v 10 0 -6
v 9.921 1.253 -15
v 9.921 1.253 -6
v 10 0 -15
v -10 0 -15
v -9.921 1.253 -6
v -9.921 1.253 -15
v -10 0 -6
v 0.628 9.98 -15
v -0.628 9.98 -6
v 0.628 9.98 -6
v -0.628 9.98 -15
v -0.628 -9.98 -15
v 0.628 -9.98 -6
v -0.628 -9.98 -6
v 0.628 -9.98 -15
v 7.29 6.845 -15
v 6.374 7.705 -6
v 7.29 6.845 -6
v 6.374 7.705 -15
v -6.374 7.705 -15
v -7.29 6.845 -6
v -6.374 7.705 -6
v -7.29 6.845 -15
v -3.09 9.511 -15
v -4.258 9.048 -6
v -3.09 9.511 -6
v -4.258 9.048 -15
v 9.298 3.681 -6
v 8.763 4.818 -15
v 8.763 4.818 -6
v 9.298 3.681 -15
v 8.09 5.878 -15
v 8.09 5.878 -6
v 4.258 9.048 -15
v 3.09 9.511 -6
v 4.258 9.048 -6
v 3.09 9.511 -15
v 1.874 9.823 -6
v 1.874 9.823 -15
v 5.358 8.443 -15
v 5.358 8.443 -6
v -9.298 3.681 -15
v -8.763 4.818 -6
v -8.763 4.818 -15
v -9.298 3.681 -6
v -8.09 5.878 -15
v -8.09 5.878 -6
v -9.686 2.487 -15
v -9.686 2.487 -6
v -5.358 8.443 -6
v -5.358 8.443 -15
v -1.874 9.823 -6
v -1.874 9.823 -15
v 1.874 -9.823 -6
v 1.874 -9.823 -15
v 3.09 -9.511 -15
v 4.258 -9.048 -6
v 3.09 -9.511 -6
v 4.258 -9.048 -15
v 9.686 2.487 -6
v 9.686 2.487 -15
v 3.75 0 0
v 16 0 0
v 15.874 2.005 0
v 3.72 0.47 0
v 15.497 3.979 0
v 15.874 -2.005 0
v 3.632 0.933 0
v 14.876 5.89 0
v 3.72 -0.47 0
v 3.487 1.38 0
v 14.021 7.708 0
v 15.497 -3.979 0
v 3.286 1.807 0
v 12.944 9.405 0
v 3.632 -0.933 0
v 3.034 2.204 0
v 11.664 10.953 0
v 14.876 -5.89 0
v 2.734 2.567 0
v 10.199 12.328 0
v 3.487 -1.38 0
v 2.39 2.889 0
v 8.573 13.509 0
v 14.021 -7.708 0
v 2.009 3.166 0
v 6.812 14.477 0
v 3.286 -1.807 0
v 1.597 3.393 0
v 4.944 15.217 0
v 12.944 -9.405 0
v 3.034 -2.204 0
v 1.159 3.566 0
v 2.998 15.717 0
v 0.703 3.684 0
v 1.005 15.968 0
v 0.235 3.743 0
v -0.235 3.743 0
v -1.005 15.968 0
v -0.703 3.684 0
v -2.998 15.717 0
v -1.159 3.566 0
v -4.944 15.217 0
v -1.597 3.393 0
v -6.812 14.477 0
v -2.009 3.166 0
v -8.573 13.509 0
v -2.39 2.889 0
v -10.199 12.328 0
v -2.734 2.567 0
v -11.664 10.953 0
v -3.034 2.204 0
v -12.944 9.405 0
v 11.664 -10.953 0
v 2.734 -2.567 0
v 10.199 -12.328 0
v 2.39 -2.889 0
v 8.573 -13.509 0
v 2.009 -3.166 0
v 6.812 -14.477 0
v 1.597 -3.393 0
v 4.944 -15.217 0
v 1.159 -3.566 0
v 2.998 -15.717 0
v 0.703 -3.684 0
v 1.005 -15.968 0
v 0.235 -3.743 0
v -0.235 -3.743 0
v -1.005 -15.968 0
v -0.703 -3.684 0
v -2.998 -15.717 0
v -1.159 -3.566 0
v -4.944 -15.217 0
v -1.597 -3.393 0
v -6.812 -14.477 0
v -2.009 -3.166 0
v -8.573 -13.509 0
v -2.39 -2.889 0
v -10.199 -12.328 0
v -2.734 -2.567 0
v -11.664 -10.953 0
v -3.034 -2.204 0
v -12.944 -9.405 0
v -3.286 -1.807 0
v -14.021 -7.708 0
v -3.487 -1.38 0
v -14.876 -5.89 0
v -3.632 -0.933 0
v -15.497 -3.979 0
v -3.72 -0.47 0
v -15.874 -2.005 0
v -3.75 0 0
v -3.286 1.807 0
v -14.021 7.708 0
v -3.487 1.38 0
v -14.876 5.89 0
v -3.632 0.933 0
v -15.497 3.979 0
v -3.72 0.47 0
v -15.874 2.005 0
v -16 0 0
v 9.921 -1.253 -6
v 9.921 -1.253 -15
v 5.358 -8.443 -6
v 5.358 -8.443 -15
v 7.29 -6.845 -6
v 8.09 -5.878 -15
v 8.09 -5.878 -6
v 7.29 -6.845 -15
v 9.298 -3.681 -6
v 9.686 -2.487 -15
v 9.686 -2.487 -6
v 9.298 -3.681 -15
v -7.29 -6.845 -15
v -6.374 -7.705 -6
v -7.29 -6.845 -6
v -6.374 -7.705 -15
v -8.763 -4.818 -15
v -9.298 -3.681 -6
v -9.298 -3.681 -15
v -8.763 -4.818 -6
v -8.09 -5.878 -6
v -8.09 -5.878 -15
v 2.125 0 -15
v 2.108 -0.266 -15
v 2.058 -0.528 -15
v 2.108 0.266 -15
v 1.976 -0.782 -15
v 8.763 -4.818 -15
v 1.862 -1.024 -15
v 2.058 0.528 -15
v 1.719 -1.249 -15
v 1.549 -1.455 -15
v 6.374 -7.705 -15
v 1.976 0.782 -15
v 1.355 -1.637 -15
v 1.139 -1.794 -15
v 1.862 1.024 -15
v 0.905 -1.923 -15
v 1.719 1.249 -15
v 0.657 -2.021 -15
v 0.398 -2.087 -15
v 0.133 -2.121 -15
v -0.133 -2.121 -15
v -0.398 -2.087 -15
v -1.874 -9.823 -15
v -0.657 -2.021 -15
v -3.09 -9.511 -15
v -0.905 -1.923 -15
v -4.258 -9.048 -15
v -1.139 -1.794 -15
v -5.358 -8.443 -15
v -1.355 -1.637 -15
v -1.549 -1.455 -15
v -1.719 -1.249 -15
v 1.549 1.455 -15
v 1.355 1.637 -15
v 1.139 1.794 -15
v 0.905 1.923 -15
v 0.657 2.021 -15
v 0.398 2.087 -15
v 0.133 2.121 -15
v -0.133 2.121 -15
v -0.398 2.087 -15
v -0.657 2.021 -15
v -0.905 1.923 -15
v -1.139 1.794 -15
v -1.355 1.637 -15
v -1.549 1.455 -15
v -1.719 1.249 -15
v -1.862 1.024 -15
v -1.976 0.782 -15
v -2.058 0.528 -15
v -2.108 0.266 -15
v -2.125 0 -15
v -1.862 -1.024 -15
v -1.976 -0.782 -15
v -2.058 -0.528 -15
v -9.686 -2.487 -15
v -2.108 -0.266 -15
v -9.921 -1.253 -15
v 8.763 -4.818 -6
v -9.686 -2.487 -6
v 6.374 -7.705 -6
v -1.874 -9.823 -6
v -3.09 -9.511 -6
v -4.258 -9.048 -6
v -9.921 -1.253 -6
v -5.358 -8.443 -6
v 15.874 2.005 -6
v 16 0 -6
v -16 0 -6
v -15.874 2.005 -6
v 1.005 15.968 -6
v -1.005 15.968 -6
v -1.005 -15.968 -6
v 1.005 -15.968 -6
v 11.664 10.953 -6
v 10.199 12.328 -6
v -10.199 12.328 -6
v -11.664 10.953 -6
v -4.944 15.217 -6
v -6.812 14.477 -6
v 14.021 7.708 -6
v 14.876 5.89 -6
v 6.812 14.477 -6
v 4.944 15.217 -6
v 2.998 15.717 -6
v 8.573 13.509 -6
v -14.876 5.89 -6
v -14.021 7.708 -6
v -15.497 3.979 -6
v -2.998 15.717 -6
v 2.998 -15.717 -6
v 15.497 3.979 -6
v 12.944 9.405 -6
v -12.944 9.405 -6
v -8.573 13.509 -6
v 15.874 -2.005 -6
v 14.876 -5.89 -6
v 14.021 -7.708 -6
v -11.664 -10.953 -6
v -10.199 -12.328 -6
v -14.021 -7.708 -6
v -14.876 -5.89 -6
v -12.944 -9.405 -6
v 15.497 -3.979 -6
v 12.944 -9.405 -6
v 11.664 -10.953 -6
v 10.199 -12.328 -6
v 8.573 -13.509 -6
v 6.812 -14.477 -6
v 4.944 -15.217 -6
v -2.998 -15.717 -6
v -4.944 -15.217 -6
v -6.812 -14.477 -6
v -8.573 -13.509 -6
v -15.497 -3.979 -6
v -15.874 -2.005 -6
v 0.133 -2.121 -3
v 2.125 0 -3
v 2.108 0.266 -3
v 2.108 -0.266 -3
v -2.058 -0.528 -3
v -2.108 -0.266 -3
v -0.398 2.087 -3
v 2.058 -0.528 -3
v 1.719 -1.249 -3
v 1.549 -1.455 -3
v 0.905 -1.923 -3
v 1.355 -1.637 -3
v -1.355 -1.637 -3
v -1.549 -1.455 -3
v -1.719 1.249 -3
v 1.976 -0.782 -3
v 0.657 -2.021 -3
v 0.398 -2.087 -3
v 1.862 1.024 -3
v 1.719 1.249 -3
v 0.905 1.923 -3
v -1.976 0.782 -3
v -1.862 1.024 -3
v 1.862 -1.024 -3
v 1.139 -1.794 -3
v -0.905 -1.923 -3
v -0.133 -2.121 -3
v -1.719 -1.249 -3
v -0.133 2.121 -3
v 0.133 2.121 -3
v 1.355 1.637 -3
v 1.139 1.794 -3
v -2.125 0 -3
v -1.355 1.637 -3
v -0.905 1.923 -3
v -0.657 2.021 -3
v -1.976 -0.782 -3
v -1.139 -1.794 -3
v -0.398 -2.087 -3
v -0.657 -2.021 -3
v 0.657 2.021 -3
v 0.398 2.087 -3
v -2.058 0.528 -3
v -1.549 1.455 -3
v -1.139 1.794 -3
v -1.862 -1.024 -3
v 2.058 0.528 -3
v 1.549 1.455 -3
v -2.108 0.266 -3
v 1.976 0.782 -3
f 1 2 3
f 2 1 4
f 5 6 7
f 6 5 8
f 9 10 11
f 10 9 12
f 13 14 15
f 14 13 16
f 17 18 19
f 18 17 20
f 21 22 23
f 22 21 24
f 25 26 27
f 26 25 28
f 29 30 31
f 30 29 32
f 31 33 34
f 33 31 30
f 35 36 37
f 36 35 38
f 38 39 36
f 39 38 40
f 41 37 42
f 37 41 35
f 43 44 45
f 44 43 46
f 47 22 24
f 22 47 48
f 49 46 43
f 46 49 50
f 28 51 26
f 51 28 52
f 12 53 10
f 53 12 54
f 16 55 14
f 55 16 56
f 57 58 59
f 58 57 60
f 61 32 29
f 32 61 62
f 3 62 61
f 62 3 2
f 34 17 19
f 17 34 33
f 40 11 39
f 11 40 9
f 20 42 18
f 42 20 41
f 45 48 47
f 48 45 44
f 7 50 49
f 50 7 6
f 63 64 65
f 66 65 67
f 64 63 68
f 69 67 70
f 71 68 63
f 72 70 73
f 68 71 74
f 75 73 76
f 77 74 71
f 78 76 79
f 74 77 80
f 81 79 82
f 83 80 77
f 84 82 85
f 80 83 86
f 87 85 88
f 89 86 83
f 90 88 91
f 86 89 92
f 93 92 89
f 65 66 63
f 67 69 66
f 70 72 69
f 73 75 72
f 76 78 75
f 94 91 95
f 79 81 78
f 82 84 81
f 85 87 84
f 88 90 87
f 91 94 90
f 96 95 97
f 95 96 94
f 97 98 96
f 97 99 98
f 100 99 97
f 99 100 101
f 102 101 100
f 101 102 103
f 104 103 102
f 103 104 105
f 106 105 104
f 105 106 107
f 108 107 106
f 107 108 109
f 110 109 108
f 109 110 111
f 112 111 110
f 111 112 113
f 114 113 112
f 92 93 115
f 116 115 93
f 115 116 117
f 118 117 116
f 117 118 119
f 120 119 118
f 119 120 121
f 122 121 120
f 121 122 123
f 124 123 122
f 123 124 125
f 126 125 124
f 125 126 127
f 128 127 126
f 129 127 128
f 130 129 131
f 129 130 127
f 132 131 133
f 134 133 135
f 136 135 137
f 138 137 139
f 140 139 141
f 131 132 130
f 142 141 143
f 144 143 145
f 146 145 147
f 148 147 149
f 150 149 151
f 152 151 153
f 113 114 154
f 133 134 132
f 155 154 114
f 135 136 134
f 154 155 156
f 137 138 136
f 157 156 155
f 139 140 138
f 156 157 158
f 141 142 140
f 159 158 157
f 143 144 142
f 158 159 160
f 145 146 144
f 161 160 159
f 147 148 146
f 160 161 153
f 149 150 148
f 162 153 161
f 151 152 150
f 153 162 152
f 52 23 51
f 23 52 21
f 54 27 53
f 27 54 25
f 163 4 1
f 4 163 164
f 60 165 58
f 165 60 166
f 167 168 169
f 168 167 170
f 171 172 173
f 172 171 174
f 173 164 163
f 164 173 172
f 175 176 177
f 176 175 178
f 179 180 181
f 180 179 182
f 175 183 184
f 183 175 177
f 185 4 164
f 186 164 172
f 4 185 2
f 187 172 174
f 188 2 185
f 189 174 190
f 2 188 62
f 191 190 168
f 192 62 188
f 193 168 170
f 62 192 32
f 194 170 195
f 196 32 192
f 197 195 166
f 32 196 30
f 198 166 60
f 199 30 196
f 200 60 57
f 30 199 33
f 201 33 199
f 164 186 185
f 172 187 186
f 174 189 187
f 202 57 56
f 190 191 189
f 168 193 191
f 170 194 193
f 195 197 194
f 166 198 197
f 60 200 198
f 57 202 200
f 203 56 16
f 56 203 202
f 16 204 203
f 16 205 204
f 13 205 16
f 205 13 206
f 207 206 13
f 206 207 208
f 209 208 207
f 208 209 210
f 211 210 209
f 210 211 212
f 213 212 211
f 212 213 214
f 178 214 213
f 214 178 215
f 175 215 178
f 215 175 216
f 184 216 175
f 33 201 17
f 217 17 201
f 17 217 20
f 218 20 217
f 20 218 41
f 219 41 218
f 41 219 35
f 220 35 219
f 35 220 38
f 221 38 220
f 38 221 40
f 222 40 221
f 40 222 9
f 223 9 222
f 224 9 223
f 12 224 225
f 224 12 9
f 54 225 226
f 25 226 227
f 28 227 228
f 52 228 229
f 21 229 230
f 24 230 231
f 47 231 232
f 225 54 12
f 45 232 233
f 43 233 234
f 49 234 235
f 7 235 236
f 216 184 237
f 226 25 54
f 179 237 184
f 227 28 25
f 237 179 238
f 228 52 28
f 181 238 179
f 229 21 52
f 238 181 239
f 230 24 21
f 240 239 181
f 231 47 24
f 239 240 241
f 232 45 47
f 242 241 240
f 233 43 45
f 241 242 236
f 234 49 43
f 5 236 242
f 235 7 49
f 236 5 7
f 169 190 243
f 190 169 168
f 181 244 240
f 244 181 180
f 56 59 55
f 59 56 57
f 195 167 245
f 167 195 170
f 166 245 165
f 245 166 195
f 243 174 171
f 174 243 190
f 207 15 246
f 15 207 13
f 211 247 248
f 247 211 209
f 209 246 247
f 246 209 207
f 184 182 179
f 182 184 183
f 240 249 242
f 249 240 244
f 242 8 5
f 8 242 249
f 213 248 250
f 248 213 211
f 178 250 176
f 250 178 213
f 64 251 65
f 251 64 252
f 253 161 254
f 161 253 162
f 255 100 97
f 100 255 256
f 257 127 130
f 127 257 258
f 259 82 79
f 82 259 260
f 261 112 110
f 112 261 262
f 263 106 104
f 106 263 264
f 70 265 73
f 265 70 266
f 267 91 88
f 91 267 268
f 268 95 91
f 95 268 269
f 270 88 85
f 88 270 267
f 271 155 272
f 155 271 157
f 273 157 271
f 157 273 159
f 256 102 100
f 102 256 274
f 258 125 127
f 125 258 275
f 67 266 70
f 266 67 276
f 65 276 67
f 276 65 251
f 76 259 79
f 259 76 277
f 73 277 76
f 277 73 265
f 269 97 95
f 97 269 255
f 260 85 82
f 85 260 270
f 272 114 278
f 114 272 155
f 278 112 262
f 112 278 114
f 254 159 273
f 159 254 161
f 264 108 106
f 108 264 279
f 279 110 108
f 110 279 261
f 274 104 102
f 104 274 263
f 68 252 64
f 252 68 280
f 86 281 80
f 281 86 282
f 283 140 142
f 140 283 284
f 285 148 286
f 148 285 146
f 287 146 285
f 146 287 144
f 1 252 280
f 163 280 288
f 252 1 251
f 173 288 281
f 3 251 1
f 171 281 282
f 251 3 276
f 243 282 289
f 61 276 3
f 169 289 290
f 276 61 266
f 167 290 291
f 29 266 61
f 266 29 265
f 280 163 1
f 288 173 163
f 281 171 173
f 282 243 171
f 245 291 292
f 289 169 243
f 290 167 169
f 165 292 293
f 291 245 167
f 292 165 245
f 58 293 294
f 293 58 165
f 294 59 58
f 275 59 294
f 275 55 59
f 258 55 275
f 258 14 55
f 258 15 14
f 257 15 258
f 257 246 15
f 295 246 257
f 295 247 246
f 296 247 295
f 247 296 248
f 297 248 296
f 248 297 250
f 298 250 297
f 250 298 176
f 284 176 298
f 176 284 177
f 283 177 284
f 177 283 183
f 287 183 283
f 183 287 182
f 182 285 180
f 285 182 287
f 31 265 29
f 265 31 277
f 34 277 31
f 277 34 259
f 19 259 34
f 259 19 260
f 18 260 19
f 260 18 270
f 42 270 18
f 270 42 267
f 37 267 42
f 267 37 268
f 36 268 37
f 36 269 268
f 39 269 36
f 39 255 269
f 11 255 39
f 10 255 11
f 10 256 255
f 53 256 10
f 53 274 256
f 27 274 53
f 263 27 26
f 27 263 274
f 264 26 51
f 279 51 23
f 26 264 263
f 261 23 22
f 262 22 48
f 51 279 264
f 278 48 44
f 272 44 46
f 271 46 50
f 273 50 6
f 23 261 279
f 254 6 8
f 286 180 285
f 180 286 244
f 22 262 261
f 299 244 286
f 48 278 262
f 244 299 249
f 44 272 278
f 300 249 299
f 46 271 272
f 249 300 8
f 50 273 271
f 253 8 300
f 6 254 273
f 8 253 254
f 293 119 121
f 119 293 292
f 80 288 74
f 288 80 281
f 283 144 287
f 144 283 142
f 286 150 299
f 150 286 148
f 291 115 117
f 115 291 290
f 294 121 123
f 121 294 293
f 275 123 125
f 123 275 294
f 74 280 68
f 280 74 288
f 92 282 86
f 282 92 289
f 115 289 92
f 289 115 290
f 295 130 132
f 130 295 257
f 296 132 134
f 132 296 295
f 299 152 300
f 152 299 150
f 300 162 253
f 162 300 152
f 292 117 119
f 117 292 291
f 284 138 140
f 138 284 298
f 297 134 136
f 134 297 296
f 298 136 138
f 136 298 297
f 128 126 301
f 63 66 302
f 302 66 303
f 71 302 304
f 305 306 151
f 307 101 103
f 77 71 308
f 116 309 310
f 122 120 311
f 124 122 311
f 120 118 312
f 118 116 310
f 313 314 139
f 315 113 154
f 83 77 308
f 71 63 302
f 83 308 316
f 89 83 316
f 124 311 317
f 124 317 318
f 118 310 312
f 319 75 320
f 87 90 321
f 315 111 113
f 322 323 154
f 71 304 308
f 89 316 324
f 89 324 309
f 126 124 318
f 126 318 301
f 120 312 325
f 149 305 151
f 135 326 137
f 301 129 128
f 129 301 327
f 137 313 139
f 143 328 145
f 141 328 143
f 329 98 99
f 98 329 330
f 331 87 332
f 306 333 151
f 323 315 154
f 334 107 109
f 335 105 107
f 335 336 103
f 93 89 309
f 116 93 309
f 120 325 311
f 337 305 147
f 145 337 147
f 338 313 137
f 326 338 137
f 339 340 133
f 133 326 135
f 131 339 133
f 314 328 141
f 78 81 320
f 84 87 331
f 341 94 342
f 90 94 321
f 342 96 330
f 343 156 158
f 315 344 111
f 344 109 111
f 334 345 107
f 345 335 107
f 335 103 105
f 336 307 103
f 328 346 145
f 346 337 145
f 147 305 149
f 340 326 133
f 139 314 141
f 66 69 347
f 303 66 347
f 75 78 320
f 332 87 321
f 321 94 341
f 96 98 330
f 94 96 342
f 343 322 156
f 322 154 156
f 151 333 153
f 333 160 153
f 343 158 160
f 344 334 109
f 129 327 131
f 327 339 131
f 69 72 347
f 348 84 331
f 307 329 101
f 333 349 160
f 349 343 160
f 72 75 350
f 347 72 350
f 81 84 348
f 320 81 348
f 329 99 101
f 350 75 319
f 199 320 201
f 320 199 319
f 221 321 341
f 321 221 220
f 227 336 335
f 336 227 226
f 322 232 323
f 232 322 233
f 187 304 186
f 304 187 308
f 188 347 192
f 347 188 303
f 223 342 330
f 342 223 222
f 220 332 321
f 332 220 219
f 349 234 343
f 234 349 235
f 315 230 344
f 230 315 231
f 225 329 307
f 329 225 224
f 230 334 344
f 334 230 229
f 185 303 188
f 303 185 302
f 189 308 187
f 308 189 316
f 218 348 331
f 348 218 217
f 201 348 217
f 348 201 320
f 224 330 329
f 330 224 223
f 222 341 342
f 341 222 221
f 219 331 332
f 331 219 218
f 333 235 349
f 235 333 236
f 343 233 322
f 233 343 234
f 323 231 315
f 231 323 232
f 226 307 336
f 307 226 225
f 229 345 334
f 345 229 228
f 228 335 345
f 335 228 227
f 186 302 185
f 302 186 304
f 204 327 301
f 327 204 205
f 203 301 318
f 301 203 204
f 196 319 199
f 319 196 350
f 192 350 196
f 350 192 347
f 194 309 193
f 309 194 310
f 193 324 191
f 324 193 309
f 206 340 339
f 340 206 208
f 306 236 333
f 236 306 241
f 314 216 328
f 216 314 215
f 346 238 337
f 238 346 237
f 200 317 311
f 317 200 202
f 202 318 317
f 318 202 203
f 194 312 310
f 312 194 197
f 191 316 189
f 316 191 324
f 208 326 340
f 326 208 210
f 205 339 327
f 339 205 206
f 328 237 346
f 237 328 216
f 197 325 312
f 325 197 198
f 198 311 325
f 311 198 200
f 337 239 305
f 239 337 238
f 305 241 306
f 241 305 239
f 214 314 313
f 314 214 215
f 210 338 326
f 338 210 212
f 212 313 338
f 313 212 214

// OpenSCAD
$fn = 50;


difference() {
	union() {
		translate(v = [0, 0, -15.0000000000]) {
			cylinder(h = 15, r = 10.0000000000);
		}
		translate(v = [0, 0, -6.0000000000]) {
			cylinder(h = 6, r = 16.0000000000);
		}
	}
	union() {
		translate(v = [0, 0, 0]) {
			rotate(a = [0, 0, 0]) {
				difference() {
					union() {
						#translate(v = [0, 0, -15.0000000000]) {
							cylinder(h = 15, r = 2.0000000000);
						}
						#translate(v = [0, 0, -3]) {
							cylinder(h = 3, r1 = 2.1250000000, r2 = 3.7500000000);
						}
						#translate(v = [0, 0, -15.0000000000]) {
							cylinder(h = 15, r = 2.1250000000);
						}
						#translate(v = [0, 0, -15.0000000000]) {
							cylinder(h = 15, r = 2.0000000000);
						}
					}
					union();
				}
			}
		}
	}
}
